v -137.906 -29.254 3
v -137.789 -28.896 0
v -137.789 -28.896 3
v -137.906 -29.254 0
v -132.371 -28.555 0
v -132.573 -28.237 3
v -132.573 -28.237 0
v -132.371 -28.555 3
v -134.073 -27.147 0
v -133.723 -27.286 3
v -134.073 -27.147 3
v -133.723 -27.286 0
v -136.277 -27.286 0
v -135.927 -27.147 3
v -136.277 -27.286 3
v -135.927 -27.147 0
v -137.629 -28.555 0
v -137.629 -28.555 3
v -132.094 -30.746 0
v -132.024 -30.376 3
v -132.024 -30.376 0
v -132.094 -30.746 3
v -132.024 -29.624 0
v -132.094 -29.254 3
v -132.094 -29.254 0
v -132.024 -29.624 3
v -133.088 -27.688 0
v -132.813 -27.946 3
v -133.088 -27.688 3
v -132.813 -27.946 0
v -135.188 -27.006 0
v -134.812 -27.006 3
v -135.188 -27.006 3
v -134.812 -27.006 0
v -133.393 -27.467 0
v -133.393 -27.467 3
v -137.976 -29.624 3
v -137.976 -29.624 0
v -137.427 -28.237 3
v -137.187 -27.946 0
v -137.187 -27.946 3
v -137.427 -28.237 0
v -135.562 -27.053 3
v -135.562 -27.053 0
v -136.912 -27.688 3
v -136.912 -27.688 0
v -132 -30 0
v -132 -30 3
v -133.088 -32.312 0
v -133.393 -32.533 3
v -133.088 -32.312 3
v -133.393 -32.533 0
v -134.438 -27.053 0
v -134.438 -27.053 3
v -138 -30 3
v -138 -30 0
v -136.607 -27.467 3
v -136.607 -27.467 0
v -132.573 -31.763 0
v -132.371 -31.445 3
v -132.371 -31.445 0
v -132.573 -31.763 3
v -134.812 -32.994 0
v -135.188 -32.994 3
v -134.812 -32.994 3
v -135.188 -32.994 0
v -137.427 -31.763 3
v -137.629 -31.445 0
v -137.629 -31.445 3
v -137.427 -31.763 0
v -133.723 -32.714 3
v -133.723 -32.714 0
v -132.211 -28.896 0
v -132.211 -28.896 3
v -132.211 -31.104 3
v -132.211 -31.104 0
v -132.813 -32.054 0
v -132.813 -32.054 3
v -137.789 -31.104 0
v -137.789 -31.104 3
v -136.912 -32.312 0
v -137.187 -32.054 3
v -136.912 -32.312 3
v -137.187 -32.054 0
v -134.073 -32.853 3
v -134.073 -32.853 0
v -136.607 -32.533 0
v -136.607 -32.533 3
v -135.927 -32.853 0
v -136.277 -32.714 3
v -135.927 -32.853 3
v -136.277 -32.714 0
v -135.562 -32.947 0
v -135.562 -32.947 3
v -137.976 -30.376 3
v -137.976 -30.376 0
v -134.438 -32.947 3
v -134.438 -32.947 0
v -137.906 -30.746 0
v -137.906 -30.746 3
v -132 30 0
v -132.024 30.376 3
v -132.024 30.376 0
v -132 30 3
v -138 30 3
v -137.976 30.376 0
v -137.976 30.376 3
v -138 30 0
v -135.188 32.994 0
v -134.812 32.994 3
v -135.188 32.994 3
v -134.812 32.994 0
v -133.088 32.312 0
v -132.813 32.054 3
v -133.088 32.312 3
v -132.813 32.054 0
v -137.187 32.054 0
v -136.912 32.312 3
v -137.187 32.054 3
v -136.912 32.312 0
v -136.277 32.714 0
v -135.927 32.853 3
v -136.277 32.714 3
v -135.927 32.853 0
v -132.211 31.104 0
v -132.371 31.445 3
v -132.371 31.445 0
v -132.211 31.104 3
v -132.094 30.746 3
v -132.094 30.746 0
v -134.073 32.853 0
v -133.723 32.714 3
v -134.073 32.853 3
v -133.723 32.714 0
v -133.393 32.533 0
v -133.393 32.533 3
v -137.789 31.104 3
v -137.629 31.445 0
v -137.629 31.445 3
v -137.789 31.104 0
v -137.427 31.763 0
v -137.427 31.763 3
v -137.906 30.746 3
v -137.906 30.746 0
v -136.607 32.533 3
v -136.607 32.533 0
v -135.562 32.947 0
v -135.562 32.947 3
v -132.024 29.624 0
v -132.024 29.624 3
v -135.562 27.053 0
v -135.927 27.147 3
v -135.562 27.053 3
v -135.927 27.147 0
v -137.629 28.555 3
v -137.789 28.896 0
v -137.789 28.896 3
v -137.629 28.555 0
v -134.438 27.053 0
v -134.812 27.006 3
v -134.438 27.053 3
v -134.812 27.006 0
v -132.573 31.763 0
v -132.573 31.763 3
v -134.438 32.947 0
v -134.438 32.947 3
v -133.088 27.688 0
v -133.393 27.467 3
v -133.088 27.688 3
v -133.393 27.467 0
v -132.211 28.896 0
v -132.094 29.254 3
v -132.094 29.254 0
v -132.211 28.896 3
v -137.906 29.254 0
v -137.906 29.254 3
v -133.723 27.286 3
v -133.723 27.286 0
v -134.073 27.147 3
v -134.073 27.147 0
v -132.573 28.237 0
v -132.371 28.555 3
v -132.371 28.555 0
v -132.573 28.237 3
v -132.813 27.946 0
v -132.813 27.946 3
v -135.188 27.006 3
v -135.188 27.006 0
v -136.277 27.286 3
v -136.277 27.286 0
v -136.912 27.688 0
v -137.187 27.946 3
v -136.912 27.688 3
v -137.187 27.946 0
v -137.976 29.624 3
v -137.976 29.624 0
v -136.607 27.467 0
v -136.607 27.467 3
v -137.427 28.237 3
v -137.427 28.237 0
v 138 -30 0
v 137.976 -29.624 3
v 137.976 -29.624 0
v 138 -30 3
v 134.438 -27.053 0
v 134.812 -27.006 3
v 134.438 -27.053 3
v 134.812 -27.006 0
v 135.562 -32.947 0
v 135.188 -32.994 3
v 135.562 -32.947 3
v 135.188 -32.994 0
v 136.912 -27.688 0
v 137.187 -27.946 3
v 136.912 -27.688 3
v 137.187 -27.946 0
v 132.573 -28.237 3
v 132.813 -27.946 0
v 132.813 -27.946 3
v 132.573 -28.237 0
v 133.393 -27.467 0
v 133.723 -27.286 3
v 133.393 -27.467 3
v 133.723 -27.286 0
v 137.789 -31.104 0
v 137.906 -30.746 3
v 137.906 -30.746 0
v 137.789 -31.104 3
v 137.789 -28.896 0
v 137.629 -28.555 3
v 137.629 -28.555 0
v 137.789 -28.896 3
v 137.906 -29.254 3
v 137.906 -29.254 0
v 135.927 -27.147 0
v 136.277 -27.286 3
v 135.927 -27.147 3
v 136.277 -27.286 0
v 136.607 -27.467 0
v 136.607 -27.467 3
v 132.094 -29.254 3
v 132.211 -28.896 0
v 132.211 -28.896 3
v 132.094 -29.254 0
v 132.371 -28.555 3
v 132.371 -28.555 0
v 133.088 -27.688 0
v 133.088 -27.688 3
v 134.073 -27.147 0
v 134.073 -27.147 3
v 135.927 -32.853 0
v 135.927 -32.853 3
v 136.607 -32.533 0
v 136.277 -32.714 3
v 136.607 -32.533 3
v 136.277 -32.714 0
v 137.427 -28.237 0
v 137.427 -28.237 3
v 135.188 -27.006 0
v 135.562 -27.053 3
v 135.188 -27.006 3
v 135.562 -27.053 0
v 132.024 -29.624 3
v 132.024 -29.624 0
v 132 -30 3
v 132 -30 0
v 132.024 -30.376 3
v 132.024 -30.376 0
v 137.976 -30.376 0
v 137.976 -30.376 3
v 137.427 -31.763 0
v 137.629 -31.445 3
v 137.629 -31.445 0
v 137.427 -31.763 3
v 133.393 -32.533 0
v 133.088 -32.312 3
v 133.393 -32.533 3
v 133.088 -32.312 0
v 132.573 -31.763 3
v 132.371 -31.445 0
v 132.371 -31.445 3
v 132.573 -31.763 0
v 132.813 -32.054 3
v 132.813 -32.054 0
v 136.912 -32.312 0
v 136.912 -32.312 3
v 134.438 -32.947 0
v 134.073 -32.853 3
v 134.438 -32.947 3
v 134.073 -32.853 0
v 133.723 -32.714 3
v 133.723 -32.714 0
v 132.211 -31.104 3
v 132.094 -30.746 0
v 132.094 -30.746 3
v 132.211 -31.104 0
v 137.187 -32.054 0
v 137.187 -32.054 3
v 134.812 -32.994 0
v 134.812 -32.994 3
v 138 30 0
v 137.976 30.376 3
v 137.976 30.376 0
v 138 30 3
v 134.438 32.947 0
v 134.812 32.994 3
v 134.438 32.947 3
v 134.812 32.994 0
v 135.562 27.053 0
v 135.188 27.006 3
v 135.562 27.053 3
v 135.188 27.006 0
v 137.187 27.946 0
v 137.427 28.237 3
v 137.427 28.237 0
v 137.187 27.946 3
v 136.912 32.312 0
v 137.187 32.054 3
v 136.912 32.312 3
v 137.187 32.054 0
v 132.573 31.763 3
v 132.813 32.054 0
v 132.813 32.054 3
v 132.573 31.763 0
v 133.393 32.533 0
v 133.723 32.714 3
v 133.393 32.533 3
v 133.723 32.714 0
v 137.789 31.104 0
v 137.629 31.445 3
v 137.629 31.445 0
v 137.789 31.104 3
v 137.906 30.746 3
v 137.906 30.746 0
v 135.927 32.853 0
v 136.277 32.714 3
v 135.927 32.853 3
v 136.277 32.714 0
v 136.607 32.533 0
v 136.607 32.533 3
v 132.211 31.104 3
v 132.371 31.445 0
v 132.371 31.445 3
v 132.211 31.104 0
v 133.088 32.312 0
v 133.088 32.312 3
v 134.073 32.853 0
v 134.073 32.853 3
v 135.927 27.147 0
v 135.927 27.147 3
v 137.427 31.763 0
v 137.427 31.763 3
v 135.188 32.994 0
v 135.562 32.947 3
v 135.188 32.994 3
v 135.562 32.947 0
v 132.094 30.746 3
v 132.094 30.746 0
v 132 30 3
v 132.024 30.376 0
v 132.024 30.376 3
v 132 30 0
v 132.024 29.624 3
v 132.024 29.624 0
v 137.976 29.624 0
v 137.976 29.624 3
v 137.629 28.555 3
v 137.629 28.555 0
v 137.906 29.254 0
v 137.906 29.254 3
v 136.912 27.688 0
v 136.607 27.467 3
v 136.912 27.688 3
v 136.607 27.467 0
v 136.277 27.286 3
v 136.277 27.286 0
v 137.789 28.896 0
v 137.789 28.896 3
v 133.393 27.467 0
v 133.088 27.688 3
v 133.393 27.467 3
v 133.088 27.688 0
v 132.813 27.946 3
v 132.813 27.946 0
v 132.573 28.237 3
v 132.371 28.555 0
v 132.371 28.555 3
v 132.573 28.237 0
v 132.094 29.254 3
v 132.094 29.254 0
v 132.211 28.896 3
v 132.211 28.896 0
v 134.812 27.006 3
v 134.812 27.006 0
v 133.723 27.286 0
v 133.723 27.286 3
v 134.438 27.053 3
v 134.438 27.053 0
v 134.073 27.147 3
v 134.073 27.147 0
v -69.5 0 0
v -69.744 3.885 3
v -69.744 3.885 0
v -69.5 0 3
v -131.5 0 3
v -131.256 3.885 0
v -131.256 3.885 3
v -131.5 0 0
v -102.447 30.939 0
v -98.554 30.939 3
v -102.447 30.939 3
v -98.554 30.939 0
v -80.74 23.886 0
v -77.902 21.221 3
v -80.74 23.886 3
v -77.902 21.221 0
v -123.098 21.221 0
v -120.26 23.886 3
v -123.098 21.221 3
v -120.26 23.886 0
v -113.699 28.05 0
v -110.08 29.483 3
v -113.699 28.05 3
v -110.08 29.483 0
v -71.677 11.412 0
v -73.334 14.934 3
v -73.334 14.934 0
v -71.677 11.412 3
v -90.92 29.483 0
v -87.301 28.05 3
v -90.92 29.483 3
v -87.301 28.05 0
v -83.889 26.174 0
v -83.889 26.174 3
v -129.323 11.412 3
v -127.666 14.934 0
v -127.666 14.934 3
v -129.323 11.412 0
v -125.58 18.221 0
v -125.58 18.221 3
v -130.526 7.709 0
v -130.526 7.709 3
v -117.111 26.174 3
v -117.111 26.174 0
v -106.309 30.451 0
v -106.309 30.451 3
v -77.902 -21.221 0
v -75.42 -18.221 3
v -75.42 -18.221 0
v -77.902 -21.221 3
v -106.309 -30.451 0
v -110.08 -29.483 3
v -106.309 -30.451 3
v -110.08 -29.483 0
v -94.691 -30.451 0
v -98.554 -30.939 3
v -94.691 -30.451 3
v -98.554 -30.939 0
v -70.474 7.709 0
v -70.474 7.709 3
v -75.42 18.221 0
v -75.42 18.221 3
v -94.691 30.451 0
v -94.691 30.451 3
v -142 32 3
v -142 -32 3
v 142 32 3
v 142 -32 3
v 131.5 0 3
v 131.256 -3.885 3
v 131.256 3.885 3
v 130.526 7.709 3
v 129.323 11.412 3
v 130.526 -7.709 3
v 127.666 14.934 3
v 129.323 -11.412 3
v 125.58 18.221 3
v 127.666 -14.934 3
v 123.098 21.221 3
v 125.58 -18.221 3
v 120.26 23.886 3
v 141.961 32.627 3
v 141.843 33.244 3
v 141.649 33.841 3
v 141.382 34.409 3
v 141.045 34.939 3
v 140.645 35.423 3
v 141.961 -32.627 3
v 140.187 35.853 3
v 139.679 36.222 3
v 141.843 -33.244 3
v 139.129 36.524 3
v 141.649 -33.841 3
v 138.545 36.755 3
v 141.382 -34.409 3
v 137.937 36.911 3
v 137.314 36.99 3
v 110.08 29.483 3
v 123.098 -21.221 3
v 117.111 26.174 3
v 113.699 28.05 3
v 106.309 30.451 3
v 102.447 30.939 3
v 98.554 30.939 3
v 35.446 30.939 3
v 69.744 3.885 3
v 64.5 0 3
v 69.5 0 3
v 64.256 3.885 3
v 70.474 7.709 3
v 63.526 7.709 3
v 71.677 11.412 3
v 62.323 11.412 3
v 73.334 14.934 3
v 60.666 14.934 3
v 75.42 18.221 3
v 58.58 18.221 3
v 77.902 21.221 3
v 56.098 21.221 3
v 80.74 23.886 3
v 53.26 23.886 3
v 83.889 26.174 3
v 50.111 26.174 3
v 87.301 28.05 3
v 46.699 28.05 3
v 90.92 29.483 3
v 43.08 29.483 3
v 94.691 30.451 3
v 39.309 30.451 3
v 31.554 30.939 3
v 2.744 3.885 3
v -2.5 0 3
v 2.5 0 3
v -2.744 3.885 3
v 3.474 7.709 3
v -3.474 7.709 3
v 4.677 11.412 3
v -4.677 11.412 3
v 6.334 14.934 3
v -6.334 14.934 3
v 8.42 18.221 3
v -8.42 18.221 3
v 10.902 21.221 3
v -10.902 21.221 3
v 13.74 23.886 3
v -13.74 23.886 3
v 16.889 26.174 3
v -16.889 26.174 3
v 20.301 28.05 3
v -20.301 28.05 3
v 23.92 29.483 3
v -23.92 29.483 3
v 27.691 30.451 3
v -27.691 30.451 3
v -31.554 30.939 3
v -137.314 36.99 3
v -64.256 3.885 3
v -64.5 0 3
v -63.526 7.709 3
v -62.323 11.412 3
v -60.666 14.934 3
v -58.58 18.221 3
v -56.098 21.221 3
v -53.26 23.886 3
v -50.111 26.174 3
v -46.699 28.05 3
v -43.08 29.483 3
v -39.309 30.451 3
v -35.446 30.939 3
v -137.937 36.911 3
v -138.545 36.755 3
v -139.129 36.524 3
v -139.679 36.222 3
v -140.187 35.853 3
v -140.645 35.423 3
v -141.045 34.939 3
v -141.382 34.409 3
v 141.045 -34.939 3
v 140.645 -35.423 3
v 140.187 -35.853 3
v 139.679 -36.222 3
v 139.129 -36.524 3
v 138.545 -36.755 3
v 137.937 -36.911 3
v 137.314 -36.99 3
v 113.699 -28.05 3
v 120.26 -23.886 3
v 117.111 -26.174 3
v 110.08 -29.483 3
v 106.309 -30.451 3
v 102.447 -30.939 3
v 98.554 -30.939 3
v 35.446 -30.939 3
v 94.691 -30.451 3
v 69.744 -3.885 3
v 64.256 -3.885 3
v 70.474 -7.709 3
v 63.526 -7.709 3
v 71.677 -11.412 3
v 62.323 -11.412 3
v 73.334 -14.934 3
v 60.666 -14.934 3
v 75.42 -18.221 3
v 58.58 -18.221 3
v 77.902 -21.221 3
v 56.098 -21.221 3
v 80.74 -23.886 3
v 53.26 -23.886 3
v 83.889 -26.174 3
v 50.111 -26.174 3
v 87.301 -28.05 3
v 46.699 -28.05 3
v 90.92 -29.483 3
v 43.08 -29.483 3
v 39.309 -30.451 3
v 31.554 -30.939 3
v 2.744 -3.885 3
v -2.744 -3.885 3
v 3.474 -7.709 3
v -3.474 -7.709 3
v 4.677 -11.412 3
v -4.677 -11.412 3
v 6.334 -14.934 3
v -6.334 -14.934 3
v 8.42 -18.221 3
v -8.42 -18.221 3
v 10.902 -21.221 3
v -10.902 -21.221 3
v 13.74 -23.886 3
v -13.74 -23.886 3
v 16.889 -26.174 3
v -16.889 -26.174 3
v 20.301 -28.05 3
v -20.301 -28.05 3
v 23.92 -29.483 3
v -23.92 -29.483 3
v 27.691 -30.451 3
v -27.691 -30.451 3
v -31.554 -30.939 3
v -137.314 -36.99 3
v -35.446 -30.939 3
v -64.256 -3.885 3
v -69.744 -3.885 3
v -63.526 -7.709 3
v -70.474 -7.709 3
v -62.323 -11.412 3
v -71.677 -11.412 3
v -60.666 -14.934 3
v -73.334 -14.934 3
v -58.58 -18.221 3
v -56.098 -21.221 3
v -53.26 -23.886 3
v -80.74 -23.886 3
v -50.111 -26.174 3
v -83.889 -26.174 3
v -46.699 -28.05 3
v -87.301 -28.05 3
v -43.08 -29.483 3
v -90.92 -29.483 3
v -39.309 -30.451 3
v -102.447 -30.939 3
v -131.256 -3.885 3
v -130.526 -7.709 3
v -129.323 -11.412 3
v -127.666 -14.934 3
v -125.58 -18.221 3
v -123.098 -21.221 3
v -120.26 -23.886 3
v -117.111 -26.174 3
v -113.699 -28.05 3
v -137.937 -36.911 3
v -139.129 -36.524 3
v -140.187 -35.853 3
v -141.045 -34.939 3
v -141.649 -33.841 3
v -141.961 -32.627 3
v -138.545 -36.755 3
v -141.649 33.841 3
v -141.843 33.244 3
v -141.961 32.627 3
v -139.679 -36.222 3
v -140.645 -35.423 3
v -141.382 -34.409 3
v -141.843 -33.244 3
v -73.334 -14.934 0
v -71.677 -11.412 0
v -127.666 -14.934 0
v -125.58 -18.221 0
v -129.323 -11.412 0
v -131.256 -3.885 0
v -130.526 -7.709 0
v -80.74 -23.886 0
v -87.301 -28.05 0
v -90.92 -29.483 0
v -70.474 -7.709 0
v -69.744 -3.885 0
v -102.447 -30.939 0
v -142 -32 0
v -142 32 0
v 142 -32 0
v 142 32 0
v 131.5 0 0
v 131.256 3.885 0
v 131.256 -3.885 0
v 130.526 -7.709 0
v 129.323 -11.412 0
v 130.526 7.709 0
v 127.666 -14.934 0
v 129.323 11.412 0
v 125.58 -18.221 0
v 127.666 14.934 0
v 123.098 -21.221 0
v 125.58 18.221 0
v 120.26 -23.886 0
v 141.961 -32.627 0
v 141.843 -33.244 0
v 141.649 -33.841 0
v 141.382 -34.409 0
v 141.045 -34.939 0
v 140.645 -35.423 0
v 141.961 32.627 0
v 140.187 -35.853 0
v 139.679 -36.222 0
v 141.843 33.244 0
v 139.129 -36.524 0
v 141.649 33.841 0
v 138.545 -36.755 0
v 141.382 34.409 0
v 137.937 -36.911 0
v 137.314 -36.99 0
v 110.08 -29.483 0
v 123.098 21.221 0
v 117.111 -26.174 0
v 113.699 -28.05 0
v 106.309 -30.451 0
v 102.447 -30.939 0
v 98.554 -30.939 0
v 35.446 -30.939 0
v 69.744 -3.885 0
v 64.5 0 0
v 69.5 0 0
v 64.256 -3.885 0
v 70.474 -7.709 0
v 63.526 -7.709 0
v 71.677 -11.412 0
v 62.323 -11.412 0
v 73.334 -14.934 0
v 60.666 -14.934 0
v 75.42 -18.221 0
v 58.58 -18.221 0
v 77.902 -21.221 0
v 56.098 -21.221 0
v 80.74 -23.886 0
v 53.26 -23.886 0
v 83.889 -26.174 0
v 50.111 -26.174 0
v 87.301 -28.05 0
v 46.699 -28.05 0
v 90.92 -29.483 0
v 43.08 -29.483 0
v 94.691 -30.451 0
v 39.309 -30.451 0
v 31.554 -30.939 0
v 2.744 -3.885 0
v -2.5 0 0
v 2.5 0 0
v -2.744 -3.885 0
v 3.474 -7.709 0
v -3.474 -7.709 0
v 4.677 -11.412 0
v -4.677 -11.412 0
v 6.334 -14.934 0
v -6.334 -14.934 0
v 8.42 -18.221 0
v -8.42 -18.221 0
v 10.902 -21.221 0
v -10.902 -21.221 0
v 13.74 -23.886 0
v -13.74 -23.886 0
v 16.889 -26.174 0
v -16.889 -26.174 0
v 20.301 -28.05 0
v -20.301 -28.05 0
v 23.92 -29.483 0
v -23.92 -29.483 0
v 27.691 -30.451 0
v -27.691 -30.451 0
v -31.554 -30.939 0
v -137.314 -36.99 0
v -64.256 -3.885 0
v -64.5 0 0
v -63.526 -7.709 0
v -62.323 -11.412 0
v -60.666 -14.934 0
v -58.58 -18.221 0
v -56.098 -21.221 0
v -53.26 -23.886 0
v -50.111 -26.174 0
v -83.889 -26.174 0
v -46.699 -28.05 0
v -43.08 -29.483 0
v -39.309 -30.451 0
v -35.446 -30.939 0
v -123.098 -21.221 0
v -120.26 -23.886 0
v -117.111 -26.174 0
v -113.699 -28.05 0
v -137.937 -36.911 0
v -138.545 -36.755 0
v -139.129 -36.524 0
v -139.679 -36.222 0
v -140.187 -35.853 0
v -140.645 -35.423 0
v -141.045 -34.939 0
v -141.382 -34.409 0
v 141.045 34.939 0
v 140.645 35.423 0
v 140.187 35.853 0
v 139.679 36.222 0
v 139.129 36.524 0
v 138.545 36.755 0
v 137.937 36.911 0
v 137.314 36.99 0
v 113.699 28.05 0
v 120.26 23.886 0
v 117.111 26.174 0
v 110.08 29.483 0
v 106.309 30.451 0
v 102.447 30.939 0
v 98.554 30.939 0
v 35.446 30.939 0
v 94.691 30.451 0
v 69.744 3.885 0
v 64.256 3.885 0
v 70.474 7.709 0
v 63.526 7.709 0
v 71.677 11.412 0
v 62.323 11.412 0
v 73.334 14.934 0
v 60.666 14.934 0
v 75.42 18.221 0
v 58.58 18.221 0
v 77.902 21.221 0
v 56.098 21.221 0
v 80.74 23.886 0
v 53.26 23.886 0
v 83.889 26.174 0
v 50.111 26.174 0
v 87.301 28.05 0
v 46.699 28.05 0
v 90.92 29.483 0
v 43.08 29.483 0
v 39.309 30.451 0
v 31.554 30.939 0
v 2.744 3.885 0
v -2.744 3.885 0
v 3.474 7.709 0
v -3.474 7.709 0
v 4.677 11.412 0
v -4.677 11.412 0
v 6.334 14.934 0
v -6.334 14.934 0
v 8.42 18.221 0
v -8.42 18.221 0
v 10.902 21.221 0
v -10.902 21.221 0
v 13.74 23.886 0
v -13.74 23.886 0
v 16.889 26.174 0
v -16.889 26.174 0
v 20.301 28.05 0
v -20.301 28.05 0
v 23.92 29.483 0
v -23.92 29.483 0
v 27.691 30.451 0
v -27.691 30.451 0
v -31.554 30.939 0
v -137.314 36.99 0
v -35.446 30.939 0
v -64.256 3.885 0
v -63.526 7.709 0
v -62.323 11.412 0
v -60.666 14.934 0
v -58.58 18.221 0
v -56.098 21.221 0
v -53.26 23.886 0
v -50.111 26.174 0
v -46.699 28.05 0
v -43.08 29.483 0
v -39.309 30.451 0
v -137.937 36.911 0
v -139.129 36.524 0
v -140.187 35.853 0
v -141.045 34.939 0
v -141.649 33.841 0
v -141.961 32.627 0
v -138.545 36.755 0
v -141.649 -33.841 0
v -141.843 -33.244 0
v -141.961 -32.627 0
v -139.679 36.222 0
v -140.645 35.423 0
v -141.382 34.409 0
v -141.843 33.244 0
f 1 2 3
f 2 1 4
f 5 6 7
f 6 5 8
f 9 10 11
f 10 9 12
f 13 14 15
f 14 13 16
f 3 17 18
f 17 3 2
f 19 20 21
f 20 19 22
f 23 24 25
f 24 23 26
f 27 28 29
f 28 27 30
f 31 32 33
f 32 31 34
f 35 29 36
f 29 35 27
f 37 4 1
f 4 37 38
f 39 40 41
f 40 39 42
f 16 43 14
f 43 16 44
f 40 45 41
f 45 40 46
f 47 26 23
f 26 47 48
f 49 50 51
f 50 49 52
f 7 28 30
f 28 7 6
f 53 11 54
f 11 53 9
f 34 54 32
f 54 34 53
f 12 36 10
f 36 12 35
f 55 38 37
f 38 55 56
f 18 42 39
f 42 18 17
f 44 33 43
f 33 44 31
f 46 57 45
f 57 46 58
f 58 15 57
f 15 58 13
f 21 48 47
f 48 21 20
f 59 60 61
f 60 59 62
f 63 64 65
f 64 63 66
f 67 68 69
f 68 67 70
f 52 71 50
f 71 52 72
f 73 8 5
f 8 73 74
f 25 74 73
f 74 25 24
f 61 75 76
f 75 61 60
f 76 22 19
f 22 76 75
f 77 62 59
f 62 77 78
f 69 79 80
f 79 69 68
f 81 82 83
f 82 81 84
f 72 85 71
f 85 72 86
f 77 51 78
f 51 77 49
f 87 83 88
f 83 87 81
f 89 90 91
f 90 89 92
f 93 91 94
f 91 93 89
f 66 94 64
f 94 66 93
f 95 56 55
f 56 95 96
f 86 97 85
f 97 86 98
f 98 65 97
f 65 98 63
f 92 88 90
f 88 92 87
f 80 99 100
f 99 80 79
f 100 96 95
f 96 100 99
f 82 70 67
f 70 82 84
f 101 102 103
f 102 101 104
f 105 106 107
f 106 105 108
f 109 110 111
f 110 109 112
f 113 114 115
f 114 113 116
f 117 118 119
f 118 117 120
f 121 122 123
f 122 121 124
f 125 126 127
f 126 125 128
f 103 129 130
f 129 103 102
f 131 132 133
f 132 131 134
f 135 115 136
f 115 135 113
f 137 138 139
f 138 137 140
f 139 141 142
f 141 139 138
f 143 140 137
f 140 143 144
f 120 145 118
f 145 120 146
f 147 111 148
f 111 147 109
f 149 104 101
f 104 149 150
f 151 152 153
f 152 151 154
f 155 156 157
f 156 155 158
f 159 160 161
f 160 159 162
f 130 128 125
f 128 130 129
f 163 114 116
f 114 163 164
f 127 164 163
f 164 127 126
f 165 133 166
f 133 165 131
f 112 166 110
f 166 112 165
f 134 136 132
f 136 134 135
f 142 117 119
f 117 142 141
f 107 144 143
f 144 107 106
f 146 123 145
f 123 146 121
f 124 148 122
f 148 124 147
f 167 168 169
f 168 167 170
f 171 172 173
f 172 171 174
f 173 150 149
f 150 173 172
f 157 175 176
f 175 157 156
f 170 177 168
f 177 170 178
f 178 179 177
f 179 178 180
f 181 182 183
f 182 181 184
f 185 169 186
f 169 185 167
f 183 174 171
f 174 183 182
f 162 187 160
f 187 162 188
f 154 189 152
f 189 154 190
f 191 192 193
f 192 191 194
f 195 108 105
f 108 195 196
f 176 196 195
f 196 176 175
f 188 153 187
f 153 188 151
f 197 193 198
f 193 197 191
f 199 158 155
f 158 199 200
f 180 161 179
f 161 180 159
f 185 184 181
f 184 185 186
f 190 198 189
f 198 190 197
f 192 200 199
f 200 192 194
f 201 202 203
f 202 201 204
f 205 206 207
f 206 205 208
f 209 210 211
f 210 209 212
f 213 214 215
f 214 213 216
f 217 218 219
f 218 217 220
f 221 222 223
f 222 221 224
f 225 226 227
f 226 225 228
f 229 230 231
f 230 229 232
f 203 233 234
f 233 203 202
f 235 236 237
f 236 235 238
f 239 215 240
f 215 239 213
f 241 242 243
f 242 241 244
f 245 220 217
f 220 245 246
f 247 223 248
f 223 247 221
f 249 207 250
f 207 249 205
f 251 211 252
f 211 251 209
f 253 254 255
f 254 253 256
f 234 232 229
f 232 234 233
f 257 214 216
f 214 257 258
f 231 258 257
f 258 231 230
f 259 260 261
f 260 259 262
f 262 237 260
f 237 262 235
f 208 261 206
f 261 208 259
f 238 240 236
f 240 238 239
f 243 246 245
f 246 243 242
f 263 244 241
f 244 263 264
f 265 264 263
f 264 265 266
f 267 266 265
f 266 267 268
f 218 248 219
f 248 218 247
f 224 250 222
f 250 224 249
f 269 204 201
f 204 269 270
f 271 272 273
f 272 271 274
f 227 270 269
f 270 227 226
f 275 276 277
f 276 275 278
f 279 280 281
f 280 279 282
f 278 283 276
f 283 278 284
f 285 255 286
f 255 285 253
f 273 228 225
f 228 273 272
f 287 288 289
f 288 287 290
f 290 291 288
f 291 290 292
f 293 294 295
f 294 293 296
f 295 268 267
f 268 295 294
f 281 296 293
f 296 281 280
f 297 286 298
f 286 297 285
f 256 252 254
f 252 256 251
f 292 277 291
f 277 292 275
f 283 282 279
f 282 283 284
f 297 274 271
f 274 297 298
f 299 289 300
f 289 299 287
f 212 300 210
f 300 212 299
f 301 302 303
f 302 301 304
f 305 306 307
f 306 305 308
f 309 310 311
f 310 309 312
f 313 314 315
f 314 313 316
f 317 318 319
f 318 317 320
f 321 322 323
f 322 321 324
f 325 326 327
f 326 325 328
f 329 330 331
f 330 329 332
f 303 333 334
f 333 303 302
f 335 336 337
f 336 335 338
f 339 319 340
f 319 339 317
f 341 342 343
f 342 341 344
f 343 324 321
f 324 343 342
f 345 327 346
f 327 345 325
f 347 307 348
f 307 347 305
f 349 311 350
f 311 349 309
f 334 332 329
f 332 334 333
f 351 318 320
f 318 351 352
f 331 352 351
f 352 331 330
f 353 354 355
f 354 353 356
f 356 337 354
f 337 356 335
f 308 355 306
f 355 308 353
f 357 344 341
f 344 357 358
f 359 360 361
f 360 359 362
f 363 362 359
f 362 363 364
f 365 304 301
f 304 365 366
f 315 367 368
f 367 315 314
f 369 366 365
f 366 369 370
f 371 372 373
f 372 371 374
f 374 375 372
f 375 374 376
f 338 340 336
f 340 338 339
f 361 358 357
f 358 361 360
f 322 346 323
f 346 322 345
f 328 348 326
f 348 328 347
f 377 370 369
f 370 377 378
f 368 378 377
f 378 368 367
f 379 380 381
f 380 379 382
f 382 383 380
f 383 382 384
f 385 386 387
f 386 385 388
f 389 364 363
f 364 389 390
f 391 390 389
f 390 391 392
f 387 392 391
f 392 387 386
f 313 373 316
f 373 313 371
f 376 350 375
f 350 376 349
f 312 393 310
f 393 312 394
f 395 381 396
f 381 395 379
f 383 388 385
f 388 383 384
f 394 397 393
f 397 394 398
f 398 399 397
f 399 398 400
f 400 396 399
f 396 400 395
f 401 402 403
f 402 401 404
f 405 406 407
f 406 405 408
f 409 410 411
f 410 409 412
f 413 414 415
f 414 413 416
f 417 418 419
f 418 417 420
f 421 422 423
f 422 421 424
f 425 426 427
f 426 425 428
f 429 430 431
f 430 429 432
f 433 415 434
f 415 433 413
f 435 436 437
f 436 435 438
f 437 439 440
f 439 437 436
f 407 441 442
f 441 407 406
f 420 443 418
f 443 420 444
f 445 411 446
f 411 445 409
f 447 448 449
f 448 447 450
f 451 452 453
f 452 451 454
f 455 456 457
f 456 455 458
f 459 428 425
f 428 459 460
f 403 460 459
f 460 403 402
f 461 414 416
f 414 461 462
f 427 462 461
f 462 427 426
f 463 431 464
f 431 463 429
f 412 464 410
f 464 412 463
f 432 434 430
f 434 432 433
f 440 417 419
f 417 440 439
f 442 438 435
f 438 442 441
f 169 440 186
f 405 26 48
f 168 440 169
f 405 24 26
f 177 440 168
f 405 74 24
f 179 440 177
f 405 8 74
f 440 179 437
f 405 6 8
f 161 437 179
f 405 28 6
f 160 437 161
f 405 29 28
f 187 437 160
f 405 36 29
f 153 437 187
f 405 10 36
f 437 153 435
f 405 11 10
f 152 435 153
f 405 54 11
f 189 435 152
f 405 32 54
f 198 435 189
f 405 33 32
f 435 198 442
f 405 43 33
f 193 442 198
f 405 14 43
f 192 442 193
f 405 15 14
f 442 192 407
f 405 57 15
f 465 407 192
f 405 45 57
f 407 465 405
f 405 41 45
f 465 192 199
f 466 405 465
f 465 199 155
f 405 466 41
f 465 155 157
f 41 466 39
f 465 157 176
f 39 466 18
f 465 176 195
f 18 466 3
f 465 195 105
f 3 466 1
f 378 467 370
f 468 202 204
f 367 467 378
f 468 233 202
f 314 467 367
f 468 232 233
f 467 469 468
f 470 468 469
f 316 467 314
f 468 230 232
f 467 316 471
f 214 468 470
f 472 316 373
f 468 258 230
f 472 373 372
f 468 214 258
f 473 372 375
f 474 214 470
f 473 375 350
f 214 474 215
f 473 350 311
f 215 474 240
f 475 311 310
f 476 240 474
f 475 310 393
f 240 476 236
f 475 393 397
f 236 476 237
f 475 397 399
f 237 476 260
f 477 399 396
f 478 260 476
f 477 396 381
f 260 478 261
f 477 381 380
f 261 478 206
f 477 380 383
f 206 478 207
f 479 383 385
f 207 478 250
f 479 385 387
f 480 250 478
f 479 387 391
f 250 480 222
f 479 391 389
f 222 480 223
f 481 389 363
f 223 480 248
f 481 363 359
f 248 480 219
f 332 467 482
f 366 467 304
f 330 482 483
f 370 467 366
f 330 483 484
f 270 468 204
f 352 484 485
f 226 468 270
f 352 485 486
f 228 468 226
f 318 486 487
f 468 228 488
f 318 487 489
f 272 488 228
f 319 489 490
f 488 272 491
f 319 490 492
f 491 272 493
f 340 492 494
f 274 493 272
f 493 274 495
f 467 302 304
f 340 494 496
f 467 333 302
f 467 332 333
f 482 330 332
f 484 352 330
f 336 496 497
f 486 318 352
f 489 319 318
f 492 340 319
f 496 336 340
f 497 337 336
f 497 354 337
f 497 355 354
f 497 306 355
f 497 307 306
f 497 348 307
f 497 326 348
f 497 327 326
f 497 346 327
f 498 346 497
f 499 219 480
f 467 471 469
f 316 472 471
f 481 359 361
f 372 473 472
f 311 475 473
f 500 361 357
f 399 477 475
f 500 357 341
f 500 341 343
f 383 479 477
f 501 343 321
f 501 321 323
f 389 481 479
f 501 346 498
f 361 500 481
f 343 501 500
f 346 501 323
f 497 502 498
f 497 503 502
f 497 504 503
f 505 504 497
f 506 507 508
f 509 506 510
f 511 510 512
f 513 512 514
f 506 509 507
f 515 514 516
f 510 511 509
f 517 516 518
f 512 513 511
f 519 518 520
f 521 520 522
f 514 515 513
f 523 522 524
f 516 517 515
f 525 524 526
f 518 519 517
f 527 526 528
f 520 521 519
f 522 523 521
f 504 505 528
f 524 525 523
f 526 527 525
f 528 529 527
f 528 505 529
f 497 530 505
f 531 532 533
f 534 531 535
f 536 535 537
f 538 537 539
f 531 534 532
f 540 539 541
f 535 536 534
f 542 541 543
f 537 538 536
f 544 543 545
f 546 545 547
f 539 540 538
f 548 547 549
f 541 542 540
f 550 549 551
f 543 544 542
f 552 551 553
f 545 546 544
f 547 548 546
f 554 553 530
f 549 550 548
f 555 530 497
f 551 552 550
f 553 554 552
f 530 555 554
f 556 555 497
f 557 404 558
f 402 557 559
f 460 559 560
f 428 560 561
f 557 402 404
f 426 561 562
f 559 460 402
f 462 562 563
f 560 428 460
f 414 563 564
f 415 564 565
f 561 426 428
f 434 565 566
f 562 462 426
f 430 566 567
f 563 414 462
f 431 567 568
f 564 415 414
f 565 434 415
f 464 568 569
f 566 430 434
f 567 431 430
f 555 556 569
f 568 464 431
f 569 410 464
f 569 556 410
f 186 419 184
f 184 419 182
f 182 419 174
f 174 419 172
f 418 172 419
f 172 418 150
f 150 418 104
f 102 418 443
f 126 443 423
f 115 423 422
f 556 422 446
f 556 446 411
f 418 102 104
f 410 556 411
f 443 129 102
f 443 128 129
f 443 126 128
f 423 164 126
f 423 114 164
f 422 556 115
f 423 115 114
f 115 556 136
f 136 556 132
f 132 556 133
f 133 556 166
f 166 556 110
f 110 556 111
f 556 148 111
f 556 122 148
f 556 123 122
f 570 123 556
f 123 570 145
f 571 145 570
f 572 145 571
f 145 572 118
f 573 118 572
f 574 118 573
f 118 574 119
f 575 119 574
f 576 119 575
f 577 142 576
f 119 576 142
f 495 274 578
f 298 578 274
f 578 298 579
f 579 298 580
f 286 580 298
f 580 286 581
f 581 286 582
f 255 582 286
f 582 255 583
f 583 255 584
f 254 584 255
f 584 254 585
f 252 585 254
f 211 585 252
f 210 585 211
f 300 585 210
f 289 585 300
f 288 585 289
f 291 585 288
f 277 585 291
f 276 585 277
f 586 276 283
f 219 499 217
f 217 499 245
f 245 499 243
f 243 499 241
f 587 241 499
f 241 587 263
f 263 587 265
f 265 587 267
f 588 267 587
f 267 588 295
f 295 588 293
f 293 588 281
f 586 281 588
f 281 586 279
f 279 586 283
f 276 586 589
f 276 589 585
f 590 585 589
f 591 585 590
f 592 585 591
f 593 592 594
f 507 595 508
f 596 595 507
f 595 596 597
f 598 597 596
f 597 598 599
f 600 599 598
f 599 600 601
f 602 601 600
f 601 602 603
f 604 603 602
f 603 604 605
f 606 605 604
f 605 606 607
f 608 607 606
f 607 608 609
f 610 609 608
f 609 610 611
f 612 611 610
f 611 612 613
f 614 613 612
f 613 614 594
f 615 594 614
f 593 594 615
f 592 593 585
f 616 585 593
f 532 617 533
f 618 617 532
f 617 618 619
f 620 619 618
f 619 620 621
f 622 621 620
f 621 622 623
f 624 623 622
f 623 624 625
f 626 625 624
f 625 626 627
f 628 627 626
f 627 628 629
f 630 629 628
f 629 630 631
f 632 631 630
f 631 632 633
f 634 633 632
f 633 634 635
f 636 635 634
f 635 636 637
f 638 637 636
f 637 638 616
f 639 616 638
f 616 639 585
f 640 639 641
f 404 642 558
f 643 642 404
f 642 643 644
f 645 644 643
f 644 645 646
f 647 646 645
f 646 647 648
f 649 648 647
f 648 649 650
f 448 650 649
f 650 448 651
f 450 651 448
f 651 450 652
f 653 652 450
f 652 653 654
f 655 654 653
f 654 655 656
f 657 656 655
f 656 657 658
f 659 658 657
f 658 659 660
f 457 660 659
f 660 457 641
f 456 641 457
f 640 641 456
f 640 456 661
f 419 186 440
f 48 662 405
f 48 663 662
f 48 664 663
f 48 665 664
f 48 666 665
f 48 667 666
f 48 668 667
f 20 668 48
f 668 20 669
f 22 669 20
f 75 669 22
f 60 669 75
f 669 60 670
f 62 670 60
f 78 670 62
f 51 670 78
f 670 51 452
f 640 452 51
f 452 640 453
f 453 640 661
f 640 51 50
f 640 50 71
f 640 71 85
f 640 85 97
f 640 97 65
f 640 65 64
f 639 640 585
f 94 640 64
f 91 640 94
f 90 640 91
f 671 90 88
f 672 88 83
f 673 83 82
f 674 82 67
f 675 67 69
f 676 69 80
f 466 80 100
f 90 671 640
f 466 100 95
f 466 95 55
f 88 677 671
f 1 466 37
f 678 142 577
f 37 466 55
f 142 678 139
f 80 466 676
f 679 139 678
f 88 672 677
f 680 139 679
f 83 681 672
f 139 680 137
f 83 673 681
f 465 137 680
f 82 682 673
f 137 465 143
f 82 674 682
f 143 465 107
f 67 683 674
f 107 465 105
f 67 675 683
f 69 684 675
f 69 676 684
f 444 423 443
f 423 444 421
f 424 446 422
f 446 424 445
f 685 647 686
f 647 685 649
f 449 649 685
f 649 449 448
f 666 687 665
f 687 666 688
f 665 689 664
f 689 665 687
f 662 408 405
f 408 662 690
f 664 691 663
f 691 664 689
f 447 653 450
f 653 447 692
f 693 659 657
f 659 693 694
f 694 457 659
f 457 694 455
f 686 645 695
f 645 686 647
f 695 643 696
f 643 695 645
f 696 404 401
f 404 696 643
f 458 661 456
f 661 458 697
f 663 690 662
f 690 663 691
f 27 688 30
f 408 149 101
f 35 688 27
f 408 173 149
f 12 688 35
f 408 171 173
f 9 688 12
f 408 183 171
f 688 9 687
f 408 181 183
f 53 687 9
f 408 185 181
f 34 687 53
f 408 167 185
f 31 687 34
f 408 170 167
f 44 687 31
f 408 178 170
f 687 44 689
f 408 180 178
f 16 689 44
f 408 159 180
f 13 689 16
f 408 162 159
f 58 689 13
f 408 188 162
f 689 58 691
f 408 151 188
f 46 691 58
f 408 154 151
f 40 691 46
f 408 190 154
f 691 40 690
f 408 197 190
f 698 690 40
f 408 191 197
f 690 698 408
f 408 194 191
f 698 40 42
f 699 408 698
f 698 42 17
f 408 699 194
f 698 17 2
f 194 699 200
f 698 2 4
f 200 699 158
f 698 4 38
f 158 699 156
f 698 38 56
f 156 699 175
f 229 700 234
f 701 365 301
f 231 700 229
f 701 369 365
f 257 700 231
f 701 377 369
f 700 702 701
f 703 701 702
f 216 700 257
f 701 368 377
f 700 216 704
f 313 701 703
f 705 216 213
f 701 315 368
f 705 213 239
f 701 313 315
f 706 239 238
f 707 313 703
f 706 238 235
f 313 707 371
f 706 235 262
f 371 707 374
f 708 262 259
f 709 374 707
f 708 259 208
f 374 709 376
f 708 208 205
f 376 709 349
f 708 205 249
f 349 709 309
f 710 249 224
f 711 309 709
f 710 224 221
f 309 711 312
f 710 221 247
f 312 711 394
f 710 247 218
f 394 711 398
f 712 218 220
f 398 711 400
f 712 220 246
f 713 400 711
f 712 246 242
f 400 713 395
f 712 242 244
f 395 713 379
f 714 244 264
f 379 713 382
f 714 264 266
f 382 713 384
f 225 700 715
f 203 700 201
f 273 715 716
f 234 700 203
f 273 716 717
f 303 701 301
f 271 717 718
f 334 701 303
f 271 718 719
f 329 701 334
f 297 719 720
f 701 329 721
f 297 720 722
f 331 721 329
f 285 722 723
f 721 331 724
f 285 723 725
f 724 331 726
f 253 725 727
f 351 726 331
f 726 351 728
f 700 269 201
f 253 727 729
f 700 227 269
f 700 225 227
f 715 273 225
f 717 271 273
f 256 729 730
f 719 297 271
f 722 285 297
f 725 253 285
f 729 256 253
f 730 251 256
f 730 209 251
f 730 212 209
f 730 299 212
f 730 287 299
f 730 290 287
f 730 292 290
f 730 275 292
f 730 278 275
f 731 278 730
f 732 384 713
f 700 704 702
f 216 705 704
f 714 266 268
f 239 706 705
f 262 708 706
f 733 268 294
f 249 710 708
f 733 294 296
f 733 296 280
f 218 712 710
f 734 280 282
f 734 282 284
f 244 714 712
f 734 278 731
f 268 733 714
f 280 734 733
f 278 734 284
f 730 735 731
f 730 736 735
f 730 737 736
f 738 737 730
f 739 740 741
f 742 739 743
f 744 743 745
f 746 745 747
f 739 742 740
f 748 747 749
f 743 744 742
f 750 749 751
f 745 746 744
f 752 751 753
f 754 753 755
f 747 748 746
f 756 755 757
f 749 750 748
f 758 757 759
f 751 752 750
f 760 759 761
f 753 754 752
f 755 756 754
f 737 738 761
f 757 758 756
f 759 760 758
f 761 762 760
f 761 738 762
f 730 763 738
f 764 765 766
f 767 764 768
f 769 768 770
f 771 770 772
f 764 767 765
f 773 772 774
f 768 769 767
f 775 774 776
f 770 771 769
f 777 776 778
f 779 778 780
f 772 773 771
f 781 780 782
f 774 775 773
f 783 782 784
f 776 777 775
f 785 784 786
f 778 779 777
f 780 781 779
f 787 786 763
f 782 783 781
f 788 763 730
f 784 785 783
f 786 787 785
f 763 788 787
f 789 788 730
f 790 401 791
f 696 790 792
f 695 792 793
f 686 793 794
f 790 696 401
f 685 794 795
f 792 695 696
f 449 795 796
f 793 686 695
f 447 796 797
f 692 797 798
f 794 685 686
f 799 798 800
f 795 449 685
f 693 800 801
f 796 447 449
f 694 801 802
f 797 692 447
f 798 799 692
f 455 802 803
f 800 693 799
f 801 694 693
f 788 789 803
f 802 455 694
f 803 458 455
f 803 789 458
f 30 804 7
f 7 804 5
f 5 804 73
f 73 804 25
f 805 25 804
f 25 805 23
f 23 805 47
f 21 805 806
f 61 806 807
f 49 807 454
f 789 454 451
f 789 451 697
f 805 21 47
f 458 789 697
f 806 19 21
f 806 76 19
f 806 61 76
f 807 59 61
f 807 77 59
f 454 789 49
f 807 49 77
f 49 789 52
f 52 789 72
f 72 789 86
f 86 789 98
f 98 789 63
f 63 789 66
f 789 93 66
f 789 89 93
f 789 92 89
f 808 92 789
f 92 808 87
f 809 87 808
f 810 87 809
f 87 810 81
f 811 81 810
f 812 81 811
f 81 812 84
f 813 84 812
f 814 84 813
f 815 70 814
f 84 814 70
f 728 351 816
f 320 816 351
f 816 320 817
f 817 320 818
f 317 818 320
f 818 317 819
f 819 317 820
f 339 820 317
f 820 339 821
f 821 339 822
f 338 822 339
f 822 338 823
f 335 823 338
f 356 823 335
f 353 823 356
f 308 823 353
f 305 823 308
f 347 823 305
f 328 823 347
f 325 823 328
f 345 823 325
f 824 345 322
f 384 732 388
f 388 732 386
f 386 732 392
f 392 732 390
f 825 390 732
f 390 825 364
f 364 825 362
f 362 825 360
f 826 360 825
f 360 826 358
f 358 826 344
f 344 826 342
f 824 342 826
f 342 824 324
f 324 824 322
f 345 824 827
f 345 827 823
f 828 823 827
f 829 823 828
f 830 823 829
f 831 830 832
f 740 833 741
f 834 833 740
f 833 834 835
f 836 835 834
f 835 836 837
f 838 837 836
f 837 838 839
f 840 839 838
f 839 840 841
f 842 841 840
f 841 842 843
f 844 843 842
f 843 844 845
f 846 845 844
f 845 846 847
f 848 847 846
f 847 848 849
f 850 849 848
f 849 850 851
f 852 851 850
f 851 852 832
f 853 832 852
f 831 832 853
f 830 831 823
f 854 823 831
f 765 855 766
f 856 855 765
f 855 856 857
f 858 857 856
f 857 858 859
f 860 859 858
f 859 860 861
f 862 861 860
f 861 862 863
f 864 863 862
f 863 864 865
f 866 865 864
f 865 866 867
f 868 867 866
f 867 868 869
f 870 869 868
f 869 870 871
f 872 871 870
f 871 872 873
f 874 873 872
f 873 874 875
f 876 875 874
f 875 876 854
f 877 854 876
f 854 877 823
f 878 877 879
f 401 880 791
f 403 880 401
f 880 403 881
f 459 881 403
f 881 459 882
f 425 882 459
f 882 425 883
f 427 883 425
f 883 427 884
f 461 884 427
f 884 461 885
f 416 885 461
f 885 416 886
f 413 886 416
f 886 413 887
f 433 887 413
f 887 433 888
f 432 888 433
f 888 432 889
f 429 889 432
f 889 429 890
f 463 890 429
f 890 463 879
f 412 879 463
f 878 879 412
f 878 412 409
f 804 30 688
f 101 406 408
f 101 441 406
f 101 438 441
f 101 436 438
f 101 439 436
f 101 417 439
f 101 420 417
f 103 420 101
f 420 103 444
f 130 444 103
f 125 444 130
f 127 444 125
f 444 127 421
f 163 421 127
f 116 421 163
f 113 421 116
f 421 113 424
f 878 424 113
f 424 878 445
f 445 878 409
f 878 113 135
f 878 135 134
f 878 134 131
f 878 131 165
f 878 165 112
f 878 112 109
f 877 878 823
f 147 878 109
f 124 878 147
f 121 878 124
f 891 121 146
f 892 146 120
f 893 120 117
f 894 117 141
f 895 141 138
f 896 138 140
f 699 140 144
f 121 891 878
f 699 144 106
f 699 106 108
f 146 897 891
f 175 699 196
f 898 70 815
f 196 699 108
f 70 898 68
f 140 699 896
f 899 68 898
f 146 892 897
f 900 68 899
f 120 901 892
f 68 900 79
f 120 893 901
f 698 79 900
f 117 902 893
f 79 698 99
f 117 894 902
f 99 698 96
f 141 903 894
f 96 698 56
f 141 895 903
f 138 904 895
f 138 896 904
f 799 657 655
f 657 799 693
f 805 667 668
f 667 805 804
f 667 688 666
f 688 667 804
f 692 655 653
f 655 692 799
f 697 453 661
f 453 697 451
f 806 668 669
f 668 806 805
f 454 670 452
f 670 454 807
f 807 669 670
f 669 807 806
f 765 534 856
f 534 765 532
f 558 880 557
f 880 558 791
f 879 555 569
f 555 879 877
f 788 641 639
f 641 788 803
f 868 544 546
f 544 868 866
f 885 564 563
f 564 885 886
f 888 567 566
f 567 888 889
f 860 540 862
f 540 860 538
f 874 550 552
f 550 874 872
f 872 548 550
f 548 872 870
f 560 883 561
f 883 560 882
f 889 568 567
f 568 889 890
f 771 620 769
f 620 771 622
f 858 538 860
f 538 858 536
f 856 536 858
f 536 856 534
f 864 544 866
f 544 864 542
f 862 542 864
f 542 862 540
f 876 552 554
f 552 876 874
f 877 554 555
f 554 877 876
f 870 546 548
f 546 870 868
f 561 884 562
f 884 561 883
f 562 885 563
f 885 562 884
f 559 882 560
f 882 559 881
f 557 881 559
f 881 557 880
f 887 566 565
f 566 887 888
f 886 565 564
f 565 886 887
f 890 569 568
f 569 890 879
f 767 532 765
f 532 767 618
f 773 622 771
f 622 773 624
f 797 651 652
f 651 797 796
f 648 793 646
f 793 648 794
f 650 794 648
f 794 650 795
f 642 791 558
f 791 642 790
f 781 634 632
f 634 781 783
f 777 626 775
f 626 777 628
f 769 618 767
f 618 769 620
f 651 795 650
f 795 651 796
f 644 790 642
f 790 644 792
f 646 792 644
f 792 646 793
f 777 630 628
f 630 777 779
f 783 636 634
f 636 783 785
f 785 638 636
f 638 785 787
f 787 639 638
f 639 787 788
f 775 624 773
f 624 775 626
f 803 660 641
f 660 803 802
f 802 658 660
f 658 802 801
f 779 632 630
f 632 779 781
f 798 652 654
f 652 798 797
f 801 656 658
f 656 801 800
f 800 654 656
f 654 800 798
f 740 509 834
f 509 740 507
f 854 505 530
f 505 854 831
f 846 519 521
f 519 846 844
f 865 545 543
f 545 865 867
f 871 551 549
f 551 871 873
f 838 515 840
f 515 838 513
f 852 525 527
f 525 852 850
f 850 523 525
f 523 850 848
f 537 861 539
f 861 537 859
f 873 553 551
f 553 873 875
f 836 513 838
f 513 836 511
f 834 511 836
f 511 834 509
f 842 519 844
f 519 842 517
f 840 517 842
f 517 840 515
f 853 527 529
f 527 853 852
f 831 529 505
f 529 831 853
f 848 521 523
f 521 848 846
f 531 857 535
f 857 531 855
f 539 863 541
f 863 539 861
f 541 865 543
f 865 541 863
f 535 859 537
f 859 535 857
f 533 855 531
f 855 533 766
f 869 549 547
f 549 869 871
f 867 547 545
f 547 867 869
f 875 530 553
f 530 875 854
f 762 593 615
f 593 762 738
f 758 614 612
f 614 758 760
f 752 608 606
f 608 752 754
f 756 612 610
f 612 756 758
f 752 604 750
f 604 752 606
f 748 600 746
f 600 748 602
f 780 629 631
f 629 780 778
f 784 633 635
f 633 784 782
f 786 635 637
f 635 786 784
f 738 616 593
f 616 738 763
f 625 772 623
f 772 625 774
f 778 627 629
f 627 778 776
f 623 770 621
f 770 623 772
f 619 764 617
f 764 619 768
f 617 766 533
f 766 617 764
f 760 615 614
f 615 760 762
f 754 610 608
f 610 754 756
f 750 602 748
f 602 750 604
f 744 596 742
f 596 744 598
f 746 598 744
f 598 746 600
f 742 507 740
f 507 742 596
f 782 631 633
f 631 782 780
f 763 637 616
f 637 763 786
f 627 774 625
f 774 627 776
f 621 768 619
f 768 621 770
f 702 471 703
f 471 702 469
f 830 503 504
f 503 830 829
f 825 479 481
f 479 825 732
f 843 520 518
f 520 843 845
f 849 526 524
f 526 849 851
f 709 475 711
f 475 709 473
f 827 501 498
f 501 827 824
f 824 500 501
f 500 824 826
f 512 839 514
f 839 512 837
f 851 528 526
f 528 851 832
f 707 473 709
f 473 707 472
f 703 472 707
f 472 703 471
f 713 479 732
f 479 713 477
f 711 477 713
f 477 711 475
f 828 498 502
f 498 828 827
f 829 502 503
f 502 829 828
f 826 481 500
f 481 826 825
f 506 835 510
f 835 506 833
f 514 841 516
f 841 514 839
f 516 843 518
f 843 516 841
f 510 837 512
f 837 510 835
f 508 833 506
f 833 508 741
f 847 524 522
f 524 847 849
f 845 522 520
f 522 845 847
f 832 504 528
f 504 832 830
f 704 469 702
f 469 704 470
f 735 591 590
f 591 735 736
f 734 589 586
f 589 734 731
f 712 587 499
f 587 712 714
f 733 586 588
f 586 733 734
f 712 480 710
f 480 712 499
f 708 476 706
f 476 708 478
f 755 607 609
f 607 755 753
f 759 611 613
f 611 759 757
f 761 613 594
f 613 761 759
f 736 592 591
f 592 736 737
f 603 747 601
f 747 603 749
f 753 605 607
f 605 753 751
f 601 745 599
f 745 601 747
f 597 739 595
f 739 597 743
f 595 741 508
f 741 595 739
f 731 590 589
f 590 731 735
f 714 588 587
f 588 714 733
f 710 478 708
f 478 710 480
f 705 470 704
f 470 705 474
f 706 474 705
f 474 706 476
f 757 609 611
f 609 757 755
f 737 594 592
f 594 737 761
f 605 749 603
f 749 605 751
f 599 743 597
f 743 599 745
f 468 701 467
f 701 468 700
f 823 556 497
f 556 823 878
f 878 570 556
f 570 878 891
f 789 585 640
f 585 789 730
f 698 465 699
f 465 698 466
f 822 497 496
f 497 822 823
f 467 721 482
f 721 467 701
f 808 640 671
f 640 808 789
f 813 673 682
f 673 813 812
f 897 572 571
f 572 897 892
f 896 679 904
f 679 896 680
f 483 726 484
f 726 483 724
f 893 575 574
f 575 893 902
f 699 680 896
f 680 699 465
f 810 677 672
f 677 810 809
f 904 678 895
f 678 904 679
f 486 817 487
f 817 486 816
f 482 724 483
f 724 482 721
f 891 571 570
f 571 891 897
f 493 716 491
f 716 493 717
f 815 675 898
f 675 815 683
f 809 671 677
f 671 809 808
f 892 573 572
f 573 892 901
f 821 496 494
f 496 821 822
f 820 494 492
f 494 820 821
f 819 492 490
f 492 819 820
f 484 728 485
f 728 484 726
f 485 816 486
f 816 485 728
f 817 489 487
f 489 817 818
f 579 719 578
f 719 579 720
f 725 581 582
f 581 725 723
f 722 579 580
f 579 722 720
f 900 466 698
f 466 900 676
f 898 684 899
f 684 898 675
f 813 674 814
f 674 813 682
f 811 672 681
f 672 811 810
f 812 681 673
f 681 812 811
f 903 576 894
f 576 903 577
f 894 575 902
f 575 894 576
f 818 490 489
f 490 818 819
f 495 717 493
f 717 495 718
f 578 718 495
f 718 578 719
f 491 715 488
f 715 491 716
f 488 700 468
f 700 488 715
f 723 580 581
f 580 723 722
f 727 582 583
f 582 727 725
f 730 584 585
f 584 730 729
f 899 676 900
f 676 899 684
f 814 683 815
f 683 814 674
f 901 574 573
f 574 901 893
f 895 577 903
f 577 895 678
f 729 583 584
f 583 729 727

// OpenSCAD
$fn = 50;


difference() {
	union() {
		hull() {
			translate(v = [-137.0000000000, 32.0000000000, 0]) {
				cylinder(h = 3, r = 5);
			}
			translate(v = [137.0000000000, 32.0000000000, 0]) {
				cylinder(h = 3, r = 5);
			}
			translate(v = [-137.0000000000, -32.0000000000, 0]) {
				cylinder(h = 3, r = 5);
			}
			translate(v = [137.0000000000, -32.0000000000, 0]) {
				cylinder(h = 3, r = 5);
			}
		}
	}
	union() {
		#translate(v = [-135.0000000000, -30.0000000000, -100.0000000000]) {
			cylinder(h = 200, r = 3.0000000000);
		}
		#translate(v = [-135.0000000000, 30.0000000000, -100.0000000000]) {
			cylinder(h = 200, r = 3.0000000000);
		}
		#translate(v = [135.0000000000, -30.0000000000, -100.0000000000]) {
			cylinder(h = 200, r = 3.0000000000);
		}
		#translate(v = [135.0000000000, 30.0000000000, -100.0000000000]) {
			cylinder(h = 200, r = 3.0000000000);
		}
		#translate(v = [-100.5000000000, 0, 0]) {
			cylinder(h = 3, r = 31.0000000000);
		}
		#translate(v = [-33.5000000000, 0, 0]) {
			cylinder(h = 3, r = 31.0000000000);
		}
		#translate(v = [33.5000000000, 0, 0]) {
			cylinder(h = 3, r = 31.0000000000);
		}
		#translate(v = [100.5000000000, 0, 0]) {
			cylinder(h = 3, r = 31.0000000000);
		}
	}
}
